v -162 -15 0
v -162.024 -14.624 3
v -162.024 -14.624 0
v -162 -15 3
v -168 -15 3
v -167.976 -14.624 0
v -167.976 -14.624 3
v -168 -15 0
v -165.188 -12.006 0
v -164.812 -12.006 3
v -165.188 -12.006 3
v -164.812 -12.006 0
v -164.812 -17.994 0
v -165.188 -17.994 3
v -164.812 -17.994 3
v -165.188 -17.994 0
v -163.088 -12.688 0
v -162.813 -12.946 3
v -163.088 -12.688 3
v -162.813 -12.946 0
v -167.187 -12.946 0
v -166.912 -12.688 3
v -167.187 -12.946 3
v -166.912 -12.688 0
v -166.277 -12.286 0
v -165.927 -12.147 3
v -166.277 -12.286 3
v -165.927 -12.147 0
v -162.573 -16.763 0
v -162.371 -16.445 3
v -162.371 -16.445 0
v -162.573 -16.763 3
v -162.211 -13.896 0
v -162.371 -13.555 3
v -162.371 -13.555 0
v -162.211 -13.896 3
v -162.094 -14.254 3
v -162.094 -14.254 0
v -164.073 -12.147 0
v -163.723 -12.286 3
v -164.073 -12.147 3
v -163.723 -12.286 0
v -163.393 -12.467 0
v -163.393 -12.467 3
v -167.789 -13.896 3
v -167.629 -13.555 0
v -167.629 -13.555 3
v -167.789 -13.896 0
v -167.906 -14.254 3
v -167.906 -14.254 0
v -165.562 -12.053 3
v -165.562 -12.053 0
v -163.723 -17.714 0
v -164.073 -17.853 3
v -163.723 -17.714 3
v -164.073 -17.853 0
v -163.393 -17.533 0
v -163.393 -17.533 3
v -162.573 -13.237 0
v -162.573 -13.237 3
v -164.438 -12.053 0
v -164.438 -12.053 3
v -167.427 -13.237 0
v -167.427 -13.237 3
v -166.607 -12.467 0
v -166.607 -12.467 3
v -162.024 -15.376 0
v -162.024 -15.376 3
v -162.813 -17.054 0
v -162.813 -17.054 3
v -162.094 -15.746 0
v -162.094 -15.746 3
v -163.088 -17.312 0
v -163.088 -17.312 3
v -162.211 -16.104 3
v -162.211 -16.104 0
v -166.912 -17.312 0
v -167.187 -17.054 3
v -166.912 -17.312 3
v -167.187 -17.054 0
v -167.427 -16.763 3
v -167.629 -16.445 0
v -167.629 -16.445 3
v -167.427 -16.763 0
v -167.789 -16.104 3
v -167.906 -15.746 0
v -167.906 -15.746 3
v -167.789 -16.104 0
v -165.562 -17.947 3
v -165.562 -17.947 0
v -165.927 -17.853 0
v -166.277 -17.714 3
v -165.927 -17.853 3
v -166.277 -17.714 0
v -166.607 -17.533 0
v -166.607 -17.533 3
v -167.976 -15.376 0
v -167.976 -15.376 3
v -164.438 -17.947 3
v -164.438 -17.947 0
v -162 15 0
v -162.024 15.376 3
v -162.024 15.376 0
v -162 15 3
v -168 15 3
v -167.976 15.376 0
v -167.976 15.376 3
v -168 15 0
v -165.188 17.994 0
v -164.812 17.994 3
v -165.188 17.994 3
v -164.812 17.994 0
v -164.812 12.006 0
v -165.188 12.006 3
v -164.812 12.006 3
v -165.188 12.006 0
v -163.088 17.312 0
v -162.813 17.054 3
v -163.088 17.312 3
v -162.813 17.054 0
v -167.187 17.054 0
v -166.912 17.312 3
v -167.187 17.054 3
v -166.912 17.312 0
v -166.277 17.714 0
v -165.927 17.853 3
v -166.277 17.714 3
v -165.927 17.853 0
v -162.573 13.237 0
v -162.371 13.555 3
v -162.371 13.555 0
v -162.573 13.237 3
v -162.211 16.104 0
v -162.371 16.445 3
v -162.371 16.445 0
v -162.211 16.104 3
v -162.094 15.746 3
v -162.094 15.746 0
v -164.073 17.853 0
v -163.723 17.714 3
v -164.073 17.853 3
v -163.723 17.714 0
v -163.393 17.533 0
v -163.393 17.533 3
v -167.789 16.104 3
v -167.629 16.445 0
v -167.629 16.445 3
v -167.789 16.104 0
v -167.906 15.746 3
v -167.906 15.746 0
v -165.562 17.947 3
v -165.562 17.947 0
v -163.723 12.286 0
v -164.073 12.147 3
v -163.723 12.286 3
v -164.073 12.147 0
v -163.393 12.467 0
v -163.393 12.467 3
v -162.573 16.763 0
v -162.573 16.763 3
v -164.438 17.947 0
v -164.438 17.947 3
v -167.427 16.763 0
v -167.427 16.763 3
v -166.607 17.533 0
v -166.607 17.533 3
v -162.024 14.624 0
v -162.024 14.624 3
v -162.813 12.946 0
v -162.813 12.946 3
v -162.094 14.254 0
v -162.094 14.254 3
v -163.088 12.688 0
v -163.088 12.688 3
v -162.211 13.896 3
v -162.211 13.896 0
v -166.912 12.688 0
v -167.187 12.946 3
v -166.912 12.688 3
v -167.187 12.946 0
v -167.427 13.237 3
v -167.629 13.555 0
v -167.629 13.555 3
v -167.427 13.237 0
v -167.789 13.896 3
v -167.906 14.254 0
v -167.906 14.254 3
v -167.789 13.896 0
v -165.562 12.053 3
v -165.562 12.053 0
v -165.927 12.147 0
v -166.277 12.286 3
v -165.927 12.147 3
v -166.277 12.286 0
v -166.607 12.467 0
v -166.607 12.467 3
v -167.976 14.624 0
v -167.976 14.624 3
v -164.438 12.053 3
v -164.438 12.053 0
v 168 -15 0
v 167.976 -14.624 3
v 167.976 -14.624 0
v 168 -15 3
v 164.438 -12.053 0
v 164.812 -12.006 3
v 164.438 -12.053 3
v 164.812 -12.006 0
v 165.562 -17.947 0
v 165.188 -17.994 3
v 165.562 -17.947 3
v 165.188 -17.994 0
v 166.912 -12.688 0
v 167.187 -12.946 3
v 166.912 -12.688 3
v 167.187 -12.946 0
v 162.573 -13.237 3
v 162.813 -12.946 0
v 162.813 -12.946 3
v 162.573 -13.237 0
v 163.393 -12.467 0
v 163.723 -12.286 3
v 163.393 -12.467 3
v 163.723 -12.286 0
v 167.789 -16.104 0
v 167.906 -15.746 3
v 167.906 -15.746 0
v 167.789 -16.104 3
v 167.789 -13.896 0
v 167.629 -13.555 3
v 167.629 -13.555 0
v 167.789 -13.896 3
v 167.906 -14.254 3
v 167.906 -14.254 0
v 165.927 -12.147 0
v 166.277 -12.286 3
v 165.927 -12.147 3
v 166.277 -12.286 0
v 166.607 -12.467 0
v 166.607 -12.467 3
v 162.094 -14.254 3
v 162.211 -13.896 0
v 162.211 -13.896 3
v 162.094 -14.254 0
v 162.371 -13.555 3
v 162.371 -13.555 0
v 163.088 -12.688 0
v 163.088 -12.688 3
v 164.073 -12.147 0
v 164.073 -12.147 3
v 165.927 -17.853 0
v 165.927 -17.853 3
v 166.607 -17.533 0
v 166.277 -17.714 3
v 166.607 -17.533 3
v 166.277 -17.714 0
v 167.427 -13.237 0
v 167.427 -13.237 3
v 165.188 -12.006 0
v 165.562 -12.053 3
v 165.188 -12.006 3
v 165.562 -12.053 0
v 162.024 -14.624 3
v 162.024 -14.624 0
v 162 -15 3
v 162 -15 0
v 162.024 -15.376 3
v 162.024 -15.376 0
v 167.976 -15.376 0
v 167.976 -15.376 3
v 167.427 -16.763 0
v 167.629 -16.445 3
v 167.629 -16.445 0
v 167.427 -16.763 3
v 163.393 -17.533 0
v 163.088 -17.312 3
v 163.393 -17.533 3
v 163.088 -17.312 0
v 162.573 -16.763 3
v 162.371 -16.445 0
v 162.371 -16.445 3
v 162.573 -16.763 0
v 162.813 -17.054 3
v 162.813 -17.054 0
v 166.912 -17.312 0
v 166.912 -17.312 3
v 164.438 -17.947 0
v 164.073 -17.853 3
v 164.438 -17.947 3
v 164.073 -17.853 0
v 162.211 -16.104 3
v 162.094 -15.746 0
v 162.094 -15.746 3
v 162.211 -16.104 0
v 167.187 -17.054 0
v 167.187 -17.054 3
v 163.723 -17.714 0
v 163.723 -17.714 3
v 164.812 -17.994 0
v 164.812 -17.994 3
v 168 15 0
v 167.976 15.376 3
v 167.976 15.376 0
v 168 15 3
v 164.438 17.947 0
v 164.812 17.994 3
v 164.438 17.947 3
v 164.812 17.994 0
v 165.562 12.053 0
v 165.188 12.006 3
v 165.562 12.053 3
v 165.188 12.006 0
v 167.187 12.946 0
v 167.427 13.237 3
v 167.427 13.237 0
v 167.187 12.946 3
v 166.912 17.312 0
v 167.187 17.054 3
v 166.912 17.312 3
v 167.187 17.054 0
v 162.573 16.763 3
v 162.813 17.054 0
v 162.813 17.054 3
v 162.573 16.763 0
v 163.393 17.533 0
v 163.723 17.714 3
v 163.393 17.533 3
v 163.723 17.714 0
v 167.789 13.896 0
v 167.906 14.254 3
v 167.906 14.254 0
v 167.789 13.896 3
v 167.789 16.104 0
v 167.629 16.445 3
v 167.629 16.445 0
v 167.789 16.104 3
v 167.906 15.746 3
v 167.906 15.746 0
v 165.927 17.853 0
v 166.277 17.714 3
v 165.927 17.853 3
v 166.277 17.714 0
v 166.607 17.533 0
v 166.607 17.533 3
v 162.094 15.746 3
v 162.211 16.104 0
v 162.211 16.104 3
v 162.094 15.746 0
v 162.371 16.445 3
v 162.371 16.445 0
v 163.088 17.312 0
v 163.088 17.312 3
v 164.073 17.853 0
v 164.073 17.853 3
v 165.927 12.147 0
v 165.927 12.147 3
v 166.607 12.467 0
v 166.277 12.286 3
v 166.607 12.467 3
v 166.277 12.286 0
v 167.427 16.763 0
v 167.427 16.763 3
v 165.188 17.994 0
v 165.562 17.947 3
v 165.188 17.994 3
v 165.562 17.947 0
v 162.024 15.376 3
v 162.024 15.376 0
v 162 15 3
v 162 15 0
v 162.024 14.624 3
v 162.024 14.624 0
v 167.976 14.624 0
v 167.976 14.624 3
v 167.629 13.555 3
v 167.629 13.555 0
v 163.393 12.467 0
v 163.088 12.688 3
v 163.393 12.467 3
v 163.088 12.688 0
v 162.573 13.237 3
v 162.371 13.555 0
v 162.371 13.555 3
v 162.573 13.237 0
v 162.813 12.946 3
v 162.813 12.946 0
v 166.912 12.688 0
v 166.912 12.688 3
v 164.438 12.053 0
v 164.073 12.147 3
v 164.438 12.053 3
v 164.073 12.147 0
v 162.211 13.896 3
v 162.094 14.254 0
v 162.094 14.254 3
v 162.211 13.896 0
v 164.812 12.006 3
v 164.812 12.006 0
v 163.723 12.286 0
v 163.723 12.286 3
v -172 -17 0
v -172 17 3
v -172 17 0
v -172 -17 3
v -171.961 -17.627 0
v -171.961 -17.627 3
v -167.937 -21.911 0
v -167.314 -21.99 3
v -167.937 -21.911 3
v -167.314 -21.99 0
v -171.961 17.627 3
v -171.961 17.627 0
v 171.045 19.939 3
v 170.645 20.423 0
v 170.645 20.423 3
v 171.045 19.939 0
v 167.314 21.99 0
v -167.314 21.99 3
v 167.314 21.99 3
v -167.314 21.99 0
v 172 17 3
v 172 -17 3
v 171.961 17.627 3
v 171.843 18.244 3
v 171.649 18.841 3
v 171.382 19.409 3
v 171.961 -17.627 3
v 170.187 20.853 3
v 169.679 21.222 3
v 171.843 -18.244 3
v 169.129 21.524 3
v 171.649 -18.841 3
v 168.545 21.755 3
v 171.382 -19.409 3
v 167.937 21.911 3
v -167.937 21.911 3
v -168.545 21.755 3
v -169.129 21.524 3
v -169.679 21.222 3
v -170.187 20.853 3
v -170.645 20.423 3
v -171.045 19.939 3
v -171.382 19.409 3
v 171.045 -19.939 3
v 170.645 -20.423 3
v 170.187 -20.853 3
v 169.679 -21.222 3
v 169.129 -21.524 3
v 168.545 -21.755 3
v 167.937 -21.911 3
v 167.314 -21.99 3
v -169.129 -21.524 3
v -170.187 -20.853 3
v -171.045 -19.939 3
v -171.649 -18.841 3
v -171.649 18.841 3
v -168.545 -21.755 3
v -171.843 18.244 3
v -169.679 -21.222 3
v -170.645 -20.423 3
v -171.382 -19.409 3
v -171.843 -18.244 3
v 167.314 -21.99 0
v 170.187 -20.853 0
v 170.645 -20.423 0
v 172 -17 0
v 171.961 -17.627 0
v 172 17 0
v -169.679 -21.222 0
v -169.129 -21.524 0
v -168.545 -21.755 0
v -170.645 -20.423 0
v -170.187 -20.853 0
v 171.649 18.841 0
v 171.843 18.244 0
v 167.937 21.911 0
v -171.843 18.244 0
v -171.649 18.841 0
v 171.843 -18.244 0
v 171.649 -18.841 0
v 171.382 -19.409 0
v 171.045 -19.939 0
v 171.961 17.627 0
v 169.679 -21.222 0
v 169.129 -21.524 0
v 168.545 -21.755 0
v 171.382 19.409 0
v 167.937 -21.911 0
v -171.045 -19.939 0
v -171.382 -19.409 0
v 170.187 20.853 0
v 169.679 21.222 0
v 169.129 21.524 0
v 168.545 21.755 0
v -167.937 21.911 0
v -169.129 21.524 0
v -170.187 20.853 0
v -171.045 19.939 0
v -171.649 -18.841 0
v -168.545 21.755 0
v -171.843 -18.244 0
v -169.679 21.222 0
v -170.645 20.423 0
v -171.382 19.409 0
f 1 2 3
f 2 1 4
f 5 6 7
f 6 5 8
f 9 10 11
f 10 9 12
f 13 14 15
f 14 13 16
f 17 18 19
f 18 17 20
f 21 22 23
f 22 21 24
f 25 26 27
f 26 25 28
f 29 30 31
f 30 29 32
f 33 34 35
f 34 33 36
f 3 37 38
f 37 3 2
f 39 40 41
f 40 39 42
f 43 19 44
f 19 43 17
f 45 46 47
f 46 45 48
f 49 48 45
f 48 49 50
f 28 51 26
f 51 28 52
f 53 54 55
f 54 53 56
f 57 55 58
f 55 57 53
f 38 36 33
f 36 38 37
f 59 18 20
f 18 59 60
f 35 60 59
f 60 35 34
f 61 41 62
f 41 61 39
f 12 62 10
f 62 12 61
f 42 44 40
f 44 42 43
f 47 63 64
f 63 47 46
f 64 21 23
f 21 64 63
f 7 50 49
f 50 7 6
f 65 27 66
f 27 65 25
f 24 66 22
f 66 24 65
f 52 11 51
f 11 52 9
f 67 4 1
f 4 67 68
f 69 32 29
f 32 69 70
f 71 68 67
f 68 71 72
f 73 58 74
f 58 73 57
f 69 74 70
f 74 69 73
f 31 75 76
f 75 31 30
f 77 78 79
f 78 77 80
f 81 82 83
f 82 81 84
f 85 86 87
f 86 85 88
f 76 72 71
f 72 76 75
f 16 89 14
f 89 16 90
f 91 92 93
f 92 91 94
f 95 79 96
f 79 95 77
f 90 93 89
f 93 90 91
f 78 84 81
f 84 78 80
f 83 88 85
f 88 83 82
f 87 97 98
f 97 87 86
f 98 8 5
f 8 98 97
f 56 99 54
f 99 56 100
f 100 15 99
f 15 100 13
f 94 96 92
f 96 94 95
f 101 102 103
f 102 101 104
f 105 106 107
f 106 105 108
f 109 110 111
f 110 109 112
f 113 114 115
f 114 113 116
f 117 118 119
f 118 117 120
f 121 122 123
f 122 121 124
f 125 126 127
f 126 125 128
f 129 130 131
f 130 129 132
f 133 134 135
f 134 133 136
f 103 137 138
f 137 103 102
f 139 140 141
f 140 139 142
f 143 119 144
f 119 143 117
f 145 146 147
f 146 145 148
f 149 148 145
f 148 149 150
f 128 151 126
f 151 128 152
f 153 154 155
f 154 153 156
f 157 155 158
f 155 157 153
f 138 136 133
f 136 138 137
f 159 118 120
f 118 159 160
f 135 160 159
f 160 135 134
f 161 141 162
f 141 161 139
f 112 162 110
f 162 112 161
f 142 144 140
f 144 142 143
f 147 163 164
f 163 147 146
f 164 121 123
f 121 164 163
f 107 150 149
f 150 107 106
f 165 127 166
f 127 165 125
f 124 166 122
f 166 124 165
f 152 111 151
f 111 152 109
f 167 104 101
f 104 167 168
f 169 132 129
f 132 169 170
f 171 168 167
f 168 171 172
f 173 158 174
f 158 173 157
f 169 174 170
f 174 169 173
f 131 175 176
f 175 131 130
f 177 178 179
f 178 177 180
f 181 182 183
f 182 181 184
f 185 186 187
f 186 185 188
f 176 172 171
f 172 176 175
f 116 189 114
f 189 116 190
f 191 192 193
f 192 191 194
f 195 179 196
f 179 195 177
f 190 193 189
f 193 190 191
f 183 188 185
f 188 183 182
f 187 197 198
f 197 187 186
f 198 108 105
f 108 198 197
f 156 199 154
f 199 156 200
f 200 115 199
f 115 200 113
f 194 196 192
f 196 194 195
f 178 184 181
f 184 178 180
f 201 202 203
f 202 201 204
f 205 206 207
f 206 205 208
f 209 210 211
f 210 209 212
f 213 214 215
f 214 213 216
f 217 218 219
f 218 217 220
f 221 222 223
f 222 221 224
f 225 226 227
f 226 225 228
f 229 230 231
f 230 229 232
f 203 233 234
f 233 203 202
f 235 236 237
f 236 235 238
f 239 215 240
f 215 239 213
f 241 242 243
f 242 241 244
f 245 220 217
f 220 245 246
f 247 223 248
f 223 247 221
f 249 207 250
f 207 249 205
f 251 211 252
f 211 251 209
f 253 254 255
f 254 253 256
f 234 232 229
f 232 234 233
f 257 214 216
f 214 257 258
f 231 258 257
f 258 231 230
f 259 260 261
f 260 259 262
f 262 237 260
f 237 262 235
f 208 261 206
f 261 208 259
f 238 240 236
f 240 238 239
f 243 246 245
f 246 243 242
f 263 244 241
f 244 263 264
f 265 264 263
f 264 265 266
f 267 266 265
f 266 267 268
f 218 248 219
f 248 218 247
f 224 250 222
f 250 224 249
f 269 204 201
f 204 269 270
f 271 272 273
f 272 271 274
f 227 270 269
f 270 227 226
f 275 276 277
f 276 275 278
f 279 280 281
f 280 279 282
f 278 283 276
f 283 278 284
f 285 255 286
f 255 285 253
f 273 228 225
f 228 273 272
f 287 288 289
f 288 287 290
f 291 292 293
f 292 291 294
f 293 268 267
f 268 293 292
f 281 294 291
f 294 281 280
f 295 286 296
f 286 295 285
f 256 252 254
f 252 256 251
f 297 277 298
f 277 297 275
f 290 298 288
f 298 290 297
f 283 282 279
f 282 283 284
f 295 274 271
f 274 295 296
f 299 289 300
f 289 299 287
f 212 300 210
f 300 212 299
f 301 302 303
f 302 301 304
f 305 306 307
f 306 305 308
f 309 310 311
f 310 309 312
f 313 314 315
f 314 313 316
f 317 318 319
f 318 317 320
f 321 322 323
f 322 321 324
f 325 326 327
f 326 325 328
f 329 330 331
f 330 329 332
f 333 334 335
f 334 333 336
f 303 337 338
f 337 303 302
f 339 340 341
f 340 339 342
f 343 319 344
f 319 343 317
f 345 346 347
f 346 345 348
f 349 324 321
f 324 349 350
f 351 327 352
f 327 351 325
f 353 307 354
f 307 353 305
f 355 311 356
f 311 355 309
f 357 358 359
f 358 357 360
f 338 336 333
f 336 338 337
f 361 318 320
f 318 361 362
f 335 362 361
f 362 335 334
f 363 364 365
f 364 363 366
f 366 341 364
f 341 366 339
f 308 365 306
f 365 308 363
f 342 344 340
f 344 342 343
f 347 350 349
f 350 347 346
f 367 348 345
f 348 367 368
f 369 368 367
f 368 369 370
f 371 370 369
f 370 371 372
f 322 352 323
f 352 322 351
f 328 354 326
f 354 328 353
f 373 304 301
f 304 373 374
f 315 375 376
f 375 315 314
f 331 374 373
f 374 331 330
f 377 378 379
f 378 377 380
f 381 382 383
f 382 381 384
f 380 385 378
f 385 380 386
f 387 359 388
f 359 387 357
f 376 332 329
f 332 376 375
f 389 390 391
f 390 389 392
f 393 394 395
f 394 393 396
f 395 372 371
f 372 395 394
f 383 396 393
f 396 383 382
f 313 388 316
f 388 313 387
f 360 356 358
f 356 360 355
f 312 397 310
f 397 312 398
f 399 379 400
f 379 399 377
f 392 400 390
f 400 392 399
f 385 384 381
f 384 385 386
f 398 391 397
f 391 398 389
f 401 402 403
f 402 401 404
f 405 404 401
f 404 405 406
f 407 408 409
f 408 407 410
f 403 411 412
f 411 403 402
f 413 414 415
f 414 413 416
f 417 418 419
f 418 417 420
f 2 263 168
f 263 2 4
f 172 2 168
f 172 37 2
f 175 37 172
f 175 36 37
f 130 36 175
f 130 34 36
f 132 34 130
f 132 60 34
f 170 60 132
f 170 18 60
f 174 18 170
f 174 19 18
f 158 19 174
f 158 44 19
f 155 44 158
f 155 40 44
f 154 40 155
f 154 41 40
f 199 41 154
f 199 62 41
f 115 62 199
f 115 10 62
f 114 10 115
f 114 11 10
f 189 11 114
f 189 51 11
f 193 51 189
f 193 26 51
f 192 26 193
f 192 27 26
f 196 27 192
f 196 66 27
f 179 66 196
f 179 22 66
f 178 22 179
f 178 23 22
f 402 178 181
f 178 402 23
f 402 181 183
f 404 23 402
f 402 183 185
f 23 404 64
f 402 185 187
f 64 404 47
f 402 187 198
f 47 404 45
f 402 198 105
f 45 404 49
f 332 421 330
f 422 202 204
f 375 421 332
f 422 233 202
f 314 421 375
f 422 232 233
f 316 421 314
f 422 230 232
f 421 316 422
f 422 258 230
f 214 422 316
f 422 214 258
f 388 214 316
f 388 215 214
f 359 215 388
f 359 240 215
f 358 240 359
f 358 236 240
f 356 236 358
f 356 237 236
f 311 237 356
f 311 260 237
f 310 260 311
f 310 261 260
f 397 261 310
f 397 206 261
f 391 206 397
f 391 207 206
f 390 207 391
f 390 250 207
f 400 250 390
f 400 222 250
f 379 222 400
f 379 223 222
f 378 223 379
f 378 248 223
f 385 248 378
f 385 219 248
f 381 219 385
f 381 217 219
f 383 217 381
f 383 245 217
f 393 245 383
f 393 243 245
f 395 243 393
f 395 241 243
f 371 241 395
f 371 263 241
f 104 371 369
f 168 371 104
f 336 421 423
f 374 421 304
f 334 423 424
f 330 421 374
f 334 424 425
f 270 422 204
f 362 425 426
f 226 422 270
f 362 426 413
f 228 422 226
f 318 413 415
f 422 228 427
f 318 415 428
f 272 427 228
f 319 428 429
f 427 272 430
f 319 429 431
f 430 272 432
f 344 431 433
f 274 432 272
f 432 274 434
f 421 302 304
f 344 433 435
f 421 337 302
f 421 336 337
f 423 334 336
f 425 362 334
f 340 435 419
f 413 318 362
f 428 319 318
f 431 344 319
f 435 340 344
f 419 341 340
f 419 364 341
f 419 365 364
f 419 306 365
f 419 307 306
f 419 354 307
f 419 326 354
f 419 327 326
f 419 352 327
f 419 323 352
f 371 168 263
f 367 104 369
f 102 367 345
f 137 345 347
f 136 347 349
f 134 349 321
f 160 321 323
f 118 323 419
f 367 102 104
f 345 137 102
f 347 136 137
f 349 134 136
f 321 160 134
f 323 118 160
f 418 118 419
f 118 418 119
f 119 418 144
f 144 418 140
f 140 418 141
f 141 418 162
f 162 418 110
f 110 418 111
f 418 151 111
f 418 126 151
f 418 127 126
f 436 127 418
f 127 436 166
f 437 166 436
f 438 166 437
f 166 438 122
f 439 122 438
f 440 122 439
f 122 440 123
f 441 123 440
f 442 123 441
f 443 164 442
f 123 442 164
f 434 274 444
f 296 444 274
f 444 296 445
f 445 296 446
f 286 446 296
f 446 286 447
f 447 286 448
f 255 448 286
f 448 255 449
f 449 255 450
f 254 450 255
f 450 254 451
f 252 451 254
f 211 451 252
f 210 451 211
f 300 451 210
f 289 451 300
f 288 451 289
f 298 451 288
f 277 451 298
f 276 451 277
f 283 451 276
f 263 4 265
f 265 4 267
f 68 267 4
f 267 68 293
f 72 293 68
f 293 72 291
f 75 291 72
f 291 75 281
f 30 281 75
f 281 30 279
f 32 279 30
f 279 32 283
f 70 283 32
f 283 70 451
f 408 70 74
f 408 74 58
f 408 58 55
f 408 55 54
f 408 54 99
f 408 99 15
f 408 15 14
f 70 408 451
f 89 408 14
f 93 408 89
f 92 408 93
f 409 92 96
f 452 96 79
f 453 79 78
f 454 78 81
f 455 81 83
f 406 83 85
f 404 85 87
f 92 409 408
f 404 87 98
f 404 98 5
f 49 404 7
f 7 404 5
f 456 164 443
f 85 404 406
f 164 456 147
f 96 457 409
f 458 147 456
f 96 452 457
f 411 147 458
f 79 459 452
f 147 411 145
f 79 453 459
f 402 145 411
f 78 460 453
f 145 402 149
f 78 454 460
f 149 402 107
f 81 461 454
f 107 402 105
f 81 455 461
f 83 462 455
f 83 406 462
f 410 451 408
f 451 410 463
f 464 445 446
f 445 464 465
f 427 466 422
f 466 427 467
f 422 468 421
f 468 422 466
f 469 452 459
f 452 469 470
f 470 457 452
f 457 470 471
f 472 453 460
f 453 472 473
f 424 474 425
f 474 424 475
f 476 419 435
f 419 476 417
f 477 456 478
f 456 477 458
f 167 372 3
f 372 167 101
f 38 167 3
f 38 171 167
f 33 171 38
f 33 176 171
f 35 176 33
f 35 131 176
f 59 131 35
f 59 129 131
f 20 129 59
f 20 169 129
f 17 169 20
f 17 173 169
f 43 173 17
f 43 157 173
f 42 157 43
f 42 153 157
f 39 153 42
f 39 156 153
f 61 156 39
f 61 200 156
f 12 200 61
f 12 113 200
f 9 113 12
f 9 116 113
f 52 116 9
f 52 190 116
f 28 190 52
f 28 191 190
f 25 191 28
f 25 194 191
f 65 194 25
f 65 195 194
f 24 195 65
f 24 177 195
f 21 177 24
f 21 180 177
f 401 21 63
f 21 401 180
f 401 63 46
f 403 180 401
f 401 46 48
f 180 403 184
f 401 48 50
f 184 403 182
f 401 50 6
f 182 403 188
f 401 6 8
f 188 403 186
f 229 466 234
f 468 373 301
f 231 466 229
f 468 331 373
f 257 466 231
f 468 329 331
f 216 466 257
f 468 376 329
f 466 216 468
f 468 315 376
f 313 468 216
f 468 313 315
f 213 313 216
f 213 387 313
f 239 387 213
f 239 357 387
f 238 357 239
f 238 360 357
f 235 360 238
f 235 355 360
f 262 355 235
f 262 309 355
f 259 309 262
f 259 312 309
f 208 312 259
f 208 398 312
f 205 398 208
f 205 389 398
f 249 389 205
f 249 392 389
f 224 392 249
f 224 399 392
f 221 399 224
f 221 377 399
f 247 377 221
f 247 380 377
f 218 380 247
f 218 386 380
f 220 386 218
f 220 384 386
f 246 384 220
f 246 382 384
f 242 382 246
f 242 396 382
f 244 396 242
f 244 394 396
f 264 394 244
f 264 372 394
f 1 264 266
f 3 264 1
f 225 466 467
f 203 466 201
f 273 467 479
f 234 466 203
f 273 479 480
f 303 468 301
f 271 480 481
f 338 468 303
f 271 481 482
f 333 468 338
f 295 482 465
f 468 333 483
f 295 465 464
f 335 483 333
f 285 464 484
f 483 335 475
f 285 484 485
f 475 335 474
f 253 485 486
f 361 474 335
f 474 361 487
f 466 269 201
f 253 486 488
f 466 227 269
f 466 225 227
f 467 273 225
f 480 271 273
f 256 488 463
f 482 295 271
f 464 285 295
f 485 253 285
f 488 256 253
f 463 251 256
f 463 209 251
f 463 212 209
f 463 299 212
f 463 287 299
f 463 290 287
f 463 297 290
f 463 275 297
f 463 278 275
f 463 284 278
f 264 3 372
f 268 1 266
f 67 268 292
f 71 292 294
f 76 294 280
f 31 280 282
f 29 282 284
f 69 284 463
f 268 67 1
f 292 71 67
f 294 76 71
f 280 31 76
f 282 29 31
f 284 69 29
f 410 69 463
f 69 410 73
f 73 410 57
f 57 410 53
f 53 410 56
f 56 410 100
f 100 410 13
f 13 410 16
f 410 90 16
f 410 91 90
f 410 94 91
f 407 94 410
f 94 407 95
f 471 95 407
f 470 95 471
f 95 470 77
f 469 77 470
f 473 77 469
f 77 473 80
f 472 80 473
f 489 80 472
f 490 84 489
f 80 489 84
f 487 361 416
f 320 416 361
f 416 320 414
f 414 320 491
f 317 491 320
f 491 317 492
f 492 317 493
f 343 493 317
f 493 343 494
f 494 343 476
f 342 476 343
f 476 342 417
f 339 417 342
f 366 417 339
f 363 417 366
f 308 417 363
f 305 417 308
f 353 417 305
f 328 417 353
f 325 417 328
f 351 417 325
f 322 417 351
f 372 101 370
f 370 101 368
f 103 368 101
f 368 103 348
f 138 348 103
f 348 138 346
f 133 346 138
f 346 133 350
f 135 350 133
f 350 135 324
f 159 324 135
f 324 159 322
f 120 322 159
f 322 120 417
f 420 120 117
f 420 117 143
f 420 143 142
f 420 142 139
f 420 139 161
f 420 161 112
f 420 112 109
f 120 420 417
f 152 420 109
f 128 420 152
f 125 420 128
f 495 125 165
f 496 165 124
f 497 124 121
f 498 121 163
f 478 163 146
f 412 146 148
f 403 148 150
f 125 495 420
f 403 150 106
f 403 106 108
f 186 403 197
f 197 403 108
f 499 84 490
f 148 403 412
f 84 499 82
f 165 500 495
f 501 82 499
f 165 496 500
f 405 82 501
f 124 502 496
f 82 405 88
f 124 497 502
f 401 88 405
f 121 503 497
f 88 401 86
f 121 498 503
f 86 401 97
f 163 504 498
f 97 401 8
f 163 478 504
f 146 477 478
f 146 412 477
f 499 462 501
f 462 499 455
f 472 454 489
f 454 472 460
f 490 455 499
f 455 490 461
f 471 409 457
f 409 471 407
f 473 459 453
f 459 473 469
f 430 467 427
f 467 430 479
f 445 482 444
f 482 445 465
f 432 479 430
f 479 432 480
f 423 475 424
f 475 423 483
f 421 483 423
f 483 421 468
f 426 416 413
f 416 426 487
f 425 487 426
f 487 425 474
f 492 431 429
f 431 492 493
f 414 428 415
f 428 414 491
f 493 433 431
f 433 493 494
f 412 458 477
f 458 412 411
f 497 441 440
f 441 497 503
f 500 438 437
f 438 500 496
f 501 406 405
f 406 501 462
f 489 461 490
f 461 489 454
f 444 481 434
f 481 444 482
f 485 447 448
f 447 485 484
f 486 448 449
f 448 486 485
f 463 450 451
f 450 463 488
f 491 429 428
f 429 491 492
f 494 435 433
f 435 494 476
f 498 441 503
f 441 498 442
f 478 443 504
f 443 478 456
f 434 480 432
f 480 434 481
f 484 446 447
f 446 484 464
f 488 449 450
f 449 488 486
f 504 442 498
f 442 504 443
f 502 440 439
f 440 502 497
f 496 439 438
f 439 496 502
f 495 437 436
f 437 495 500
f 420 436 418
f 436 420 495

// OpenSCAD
$fn = 50;


difference() {
	union() {
		hull() {
			translate(v = [-167.0000000000, 17.0000000000, 0]) {
				cylinder(h = 3, r = 5);
			}
			translate(v = [167.0000000000, 17.0000000000, 0]) {
				cylinder(h = 3, r = 5);
			}
			translate(v = [-167.0000000000, -17.0000000000, 0]) {
				cylinder(h = 3, r = 5);
			}
			translate(v = [167.0000000000, -17.0000000000, 0]) {
				cylinder(h = 3, r = 5);
			}
		}
	}
	union() {
		translate(v = [-165.0000000000, -15.0000000000, -100.0000000000]) {
			cylinder(h = 200, r = 3.0000000000);
		}
		translate(v = [-165.0000000000, 15.0000000000, -100.0000000000]) {
			cylinder(h = 200, r = 3.0000000000);
		}
		translate(v = [165.0000000000, -15.0000000000, -100.0000000000]) {
			cylinder(h = 200, r = 3.0000000000);
		}
		translate(v = [165.0000000000, 15.0000000000, -100.0000000000]) {
			cylinder(h = 200, r = 3.0000000000);
		}
	}
}
